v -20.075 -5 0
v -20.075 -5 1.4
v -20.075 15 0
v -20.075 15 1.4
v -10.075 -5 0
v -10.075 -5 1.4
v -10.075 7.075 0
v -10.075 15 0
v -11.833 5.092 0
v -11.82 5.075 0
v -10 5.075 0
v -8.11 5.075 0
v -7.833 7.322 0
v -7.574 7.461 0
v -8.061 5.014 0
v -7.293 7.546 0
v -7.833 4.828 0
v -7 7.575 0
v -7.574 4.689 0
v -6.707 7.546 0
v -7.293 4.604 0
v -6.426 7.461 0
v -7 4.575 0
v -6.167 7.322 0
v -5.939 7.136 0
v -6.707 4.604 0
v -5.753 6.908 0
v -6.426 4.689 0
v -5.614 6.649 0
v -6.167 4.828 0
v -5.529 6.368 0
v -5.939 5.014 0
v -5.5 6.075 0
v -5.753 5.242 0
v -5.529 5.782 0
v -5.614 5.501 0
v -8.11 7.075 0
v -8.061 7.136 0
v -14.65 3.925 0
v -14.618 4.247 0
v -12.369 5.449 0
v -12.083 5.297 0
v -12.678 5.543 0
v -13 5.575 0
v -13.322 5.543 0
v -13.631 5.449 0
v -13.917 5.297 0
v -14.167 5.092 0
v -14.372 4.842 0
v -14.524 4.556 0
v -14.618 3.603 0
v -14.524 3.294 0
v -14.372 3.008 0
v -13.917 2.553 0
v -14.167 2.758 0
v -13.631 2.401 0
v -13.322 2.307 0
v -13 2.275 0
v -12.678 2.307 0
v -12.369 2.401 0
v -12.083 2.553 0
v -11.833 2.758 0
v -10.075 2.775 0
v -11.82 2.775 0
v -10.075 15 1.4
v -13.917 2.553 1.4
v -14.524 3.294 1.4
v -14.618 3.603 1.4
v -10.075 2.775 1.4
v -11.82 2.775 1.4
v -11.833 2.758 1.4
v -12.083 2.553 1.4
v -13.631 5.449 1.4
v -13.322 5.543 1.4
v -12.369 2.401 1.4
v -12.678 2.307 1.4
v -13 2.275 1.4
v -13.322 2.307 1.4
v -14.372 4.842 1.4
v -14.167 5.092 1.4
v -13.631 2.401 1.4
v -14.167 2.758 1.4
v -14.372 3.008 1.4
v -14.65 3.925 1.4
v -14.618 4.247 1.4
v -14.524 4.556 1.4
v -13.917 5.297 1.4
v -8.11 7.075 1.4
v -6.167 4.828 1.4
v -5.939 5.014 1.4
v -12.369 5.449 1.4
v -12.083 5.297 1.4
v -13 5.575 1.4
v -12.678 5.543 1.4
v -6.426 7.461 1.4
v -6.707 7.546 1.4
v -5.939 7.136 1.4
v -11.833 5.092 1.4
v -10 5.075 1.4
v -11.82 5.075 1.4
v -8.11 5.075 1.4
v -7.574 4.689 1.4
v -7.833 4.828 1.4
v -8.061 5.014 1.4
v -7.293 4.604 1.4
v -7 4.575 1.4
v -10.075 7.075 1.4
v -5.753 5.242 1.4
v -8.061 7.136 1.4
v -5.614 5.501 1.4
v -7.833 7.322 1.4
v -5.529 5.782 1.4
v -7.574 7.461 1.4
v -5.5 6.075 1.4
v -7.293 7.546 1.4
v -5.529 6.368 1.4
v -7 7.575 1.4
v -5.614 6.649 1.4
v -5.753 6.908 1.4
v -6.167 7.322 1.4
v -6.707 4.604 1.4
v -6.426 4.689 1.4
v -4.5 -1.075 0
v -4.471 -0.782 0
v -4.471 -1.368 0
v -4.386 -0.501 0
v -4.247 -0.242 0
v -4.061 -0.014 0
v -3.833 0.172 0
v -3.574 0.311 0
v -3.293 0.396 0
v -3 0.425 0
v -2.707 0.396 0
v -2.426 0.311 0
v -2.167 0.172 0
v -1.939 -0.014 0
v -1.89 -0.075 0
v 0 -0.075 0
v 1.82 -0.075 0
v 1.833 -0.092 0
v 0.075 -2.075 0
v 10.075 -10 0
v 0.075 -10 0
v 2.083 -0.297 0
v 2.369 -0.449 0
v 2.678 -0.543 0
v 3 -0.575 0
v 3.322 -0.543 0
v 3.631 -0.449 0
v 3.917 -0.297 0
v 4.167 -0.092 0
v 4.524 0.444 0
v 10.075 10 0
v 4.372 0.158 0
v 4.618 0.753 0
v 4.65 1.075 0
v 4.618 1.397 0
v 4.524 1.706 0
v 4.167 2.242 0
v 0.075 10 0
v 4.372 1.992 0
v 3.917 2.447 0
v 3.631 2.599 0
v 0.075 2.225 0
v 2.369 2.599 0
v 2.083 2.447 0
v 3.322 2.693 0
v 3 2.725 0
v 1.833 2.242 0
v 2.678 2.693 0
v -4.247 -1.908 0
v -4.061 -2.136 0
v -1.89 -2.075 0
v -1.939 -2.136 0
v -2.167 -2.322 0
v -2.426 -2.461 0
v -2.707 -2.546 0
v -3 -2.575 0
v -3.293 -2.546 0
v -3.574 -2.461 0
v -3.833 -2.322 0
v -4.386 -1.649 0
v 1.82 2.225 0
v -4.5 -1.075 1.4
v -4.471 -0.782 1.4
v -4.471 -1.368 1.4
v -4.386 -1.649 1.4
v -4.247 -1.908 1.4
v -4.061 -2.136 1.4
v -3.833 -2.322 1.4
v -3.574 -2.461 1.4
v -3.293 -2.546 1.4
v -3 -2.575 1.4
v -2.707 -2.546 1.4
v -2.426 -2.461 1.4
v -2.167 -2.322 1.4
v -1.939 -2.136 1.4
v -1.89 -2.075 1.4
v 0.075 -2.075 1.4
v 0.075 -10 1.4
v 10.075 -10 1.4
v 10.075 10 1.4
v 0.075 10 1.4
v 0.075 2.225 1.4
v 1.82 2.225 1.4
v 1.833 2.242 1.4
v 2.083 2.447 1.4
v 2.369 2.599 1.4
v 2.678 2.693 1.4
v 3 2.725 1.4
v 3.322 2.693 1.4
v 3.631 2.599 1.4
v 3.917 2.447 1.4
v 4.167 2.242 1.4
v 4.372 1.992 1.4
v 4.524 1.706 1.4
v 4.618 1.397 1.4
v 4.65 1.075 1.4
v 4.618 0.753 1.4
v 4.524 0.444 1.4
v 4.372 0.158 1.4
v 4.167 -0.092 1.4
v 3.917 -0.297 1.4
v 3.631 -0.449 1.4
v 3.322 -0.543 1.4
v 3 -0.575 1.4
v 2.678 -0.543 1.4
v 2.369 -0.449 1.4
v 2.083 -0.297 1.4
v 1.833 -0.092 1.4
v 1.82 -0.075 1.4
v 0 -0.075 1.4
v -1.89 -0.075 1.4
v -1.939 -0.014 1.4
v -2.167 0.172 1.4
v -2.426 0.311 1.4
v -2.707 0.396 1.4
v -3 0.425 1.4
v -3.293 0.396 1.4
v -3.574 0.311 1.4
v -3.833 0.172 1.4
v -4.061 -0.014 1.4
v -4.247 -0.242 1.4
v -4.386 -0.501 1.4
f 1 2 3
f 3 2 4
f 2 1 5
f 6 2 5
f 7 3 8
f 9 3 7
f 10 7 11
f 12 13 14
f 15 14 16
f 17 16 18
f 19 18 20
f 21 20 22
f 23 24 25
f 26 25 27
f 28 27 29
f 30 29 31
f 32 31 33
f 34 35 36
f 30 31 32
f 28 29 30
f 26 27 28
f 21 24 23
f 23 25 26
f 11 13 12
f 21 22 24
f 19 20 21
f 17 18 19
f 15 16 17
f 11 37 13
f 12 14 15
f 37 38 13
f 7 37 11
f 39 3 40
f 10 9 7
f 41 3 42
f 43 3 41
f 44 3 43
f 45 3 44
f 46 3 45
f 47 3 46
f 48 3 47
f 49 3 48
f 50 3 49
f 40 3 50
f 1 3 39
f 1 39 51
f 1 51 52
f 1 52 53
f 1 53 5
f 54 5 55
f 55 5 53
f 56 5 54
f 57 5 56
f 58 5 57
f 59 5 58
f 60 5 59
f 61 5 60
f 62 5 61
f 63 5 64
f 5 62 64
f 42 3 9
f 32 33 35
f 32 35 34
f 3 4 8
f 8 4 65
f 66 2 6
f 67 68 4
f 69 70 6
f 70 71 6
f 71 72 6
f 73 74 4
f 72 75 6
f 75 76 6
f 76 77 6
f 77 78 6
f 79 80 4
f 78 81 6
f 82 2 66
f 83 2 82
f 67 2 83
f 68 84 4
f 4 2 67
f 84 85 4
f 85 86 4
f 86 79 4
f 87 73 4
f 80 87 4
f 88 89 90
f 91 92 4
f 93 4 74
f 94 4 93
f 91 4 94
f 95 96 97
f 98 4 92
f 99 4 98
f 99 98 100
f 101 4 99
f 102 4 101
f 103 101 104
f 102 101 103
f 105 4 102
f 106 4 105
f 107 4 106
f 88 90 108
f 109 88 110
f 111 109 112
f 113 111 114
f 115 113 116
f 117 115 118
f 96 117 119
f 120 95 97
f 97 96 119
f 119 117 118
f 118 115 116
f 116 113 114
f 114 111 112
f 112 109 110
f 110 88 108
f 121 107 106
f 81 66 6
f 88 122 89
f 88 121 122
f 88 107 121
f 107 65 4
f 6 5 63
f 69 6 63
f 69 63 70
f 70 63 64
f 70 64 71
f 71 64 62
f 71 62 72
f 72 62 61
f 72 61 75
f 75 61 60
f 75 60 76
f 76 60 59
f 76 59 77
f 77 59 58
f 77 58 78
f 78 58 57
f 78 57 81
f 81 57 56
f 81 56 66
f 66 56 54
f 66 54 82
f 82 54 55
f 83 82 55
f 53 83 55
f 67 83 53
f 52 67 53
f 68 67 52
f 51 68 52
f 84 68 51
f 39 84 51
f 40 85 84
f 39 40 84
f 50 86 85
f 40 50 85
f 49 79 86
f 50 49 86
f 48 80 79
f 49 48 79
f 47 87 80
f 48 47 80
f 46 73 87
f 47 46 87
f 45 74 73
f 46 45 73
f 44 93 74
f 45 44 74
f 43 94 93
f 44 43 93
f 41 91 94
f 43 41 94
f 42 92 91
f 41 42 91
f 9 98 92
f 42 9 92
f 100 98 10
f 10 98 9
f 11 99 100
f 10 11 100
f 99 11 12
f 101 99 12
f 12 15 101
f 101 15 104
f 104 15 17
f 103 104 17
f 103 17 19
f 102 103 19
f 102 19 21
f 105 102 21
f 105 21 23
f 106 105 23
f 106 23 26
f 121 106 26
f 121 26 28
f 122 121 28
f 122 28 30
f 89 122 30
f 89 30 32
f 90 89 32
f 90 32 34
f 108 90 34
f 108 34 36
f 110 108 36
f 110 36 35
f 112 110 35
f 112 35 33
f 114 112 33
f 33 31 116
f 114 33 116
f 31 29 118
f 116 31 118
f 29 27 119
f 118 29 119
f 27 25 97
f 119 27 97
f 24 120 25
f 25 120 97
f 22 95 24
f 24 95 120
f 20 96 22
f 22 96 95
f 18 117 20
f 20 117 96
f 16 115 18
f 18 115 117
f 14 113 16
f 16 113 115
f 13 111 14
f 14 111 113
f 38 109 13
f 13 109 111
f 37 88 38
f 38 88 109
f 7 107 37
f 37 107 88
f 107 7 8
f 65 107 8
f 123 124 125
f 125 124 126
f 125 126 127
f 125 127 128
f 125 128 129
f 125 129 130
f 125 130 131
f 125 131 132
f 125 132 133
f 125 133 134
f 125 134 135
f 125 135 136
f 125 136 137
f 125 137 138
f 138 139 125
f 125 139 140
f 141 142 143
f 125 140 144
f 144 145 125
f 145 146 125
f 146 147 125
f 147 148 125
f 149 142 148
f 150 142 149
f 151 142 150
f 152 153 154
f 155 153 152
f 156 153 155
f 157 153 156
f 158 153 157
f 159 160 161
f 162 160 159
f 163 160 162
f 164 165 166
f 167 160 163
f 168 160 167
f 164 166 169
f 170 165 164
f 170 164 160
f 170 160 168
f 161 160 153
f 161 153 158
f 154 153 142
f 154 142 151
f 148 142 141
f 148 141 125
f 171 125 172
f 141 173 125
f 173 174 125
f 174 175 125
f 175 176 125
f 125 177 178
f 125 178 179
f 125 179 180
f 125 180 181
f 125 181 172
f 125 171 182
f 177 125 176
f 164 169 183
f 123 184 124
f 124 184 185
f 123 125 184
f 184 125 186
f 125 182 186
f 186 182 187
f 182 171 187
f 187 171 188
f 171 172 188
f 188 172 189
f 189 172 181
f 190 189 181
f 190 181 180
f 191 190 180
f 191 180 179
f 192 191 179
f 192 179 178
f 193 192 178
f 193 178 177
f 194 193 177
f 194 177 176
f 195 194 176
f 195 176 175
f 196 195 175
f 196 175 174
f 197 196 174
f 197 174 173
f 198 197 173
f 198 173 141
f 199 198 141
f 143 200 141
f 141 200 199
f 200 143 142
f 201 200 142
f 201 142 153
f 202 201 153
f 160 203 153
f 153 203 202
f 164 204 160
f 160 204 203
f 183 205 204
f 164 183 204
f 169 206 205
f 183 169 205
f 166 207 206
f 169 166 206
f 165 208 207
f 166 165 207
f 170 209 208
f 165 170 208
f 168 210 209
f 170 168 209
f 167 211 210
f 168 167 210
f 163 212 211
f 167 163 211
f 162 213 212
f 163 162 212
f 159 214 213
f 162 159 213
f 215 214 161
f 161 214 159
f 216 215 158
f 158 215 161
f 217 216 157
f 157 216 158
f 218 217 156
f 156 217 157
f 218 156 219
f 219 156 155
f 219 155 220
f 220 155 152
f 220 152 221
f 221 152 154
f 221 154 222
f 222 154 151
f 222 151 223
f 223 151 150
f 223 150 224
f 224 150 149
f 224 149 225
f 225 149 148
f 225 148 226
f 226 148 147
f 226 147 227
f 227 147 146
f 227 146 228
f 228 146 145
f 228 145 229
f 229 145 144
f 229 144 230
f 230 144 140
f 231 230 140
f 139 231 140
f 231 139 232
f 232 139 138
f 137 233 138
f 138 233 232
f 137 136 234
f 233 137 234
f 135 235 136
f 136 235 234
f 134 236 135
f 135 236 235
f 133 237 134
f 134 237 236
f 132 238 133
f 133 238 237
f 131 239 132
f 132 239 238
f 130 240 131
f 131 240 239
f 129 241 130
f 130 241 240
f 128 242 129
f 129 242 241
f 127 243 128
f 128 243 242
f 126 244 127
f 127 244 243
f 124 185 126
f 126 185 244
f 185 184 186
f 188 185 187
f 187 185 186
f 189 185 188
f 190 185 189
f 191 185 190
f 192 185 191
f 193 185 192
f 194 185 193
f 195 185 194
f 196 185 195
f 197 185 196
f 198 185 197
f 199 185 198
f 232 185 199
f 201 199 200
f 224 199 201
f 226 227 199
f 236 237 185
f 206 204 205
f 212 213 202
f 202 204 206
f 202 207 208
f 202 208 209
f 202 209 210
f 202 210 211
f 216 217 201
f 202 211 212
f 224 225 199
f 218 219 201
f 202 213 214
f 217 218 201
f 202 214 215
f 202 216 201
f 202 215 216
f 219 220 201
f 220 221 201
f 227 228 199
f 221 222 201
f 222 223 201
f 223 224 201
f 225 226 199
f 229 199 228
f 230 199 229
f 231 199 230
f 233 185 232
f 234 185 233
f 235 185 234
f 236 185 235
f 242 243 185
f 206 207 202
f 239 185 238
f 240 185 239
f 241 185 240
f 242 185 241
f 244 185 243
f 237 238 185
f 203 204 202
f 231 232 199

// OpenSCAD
$fn=32;

module t(l=0,th=1.4) {
  translate([-0.2, -(2+l)/2, 0]) cube([3, 2+l, th]);
  translate([3, 0, 0]) cylinder(r=(3+l)/2, h=th);
}

module hoge() {
  difference() {
    union() {
      translate([-10.075, -10, 0]) cube([10, 20, 1.4]);
      translate([0, 1.075, 0]) t();
    }
    translate([0, -1.075, -.5]) rotate([0, 0, 180]) t(l=0.3,th=2.4);
  }
}


translate([-10, 5, 0]) hoge();
rotate([0, 0, 180]) hoge();
